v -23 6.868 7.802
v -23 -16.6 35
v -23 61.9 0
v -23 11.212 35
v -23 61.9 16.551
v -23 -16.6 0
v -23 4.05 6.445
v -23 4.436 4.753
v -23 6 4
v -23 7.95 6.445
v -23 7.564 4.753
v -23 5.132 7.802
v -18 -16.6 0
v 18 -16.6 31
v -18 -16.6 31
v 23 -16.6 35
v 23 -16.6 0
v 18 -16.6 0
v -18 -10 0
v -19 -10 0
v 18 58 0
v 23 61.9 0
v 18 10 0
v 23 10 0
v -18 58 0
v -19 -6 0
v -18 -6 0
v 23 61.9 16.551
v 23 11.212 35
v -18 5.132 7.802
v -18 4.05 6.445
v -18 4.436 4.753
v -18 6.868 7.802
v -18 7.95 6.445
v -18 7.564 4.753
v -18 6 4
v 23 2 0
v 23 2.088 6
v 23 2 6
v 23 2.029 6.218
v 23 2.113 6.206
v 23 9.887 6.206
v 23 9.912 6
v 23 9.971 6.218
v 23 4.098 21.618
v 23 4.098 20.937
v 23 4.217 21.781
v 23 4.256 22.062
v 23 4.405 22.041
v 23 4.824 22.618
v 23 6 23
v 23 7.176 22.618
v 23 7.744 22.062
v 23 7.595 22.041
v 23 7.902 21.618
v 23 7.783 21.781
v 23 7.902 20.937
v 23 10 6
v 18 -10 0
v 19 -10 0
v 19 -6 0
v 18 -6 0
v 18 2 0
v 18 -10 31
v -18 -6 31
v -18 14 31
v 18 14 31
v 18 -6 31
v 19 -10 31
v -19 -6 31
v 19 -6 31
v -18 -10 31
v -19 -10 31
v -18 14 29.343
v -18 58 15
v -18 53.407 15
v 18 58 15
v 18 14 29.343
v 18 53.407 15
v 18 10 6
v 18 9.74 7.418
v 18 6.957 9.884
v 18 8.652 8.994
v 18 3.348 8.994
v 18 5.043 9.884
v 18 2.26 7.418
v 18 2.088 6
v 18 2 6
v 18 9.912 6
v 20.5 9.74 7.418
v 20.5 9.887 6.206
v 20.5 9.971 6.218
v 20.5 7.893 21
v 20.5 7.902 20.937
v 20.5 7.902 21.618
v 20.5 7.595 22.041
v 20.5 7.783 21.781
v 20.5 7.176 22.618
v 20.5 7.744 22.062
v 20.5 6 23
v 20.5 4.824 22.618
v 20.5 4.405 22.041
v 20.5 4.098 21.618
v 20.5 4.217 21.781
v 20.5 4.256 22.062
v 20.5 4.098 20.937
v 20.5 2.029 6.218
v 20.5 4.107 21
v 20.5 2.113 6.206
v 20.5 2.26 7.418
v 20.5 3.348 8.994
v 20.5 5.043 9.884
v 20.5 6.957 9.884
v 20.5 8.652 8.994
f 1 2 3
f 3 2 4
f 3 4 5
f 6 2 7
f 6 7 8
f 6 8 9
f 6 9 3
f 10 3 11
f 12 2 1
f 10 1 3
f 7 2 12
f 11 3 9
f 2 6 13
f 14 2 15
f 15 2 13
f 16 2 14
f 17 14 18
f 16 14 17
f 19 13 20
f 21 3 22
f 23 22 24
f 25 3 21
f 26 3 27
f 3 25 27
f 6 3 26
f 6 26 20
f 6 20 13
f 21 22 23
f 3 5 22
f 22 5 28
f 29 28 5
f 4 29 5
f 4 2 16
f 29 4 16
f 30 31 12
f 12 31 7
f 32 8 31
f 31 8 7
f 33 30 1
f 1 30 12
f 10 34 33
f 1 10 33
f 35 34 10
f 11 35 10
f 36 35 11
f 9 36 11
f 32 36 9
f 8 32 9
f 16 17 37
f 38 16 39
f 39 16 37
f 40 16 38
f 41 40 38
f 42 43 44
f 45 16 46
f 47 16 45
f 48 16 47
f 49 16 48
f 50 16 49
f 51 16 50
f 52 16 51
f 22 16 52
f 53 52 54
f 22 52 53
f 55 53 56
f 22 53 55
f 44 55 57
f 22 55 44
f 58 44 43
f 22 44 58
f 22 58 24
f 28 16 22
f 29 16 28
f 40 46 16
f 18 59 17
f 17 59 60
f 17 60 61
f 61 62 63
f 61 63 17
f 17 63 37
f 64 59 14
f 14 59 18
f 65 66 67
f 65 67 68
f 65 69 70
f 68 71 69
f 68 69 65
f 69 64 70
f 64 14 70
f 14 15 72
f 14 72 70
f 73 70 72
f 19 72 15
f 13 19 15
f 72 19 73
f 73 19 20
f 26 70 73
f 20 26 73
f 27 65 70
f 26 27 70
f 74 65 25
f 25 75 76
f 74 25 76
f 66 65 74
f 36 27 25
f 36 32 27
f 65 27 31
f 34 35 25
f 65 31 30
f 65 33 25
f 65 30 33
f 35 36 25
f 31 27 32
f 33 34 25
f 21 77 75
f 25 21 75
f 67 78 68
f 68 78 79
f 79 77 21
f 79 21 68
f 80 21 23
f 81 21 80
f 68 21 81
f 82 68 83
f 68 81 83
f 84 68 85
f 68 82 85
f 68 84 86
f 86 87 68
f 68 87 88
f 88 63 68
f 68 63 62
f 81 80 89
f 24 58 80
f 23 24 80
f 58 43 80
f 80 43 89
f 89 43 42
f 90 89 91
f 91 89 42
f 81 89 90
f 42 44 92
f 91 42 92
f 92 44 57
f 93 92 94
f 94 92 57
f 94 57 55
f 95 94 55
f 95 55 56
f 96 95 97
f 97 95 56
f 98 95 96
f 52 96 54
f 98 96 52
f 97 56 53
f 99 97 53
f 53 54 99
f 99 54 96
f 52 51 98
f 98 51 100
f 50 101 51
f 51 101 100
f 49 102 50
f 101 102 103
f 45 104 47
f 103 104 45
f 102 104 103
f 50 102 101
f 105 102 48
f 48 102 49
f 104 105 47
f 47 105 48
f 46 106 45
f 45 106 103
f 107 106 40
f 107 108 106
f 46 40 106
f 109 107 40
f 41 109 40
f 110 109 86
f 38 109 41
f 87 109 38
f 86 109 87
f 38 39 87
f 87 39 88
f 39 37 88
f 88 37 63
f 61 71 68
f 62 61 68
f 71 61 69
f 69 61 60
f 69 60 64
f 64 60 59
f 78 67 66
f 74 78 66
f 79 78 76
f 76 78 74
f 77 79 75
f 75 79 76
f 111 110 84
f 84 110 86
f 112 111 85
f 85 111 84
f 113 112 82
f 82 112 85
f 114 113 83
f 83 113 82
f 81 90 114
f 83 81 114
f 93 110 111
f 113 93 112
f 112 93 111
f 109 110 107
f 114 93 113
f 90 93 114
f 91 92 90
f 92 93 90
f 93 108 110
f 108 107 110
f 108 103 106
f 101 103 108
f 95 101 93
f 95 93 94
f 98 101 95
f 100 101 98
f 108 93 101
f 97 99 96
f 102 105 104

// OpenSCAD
//Medidas camara:
x_cam=38;
y_cam=31;

ancho=x_cam+10;

difference(){
	translate([-(x_cam+8)/2,-16.6,0])cube([x_cam+8,78.5,y_cam+4]);
	translate([-ancho/2-10,-30,50])rotate([-20,0,0])cube([ancho+20,120,60]);

//Cajeado interno
	translate([-(x_cam-2)/2,-22,-1])cube([x_cam-2,36,y_cam+1]);
	translate([-(x_cam-2)/2,8,-1])cube([x_cam-2,50,16]);
	translate([-(x_cam-2)/2,8,14.5])rotate([-20,0,0])cube([x_cam-2,46,16]);

//Cajeado para plaquita
translate([-x_cam/2,-10,-1])cube([x_cam,4,y_cam+1]);


//Eje del servo y cajeado
	translate([0,6,6]){
		translate([-25,0,0])rotate([0,90,0])cylinder(r=2,h=50);
		translate([0,0,0])rotate([0,90,0])cylinder(r=4,h=25);
		translate([x_cam/2+1.5,0,15])rotate([0,90,0])cylinder(r=2,h=5,$fn=10);
		translate([x_cam/2-2,-4,-7])cube([7,8,7]);
		translate([x_cam/2+1.5,-1.5,0])cube([7,3,16]);
		translate([x_cam/2+1.5,1,-0.2])rotate([8,0,0])cube([7,3,16]);
		mirror([0,1,0])translate([x_cam/2+1.5,1,-0.2])rotate([8,0,0])cube([7,3,16]);
	}
}
